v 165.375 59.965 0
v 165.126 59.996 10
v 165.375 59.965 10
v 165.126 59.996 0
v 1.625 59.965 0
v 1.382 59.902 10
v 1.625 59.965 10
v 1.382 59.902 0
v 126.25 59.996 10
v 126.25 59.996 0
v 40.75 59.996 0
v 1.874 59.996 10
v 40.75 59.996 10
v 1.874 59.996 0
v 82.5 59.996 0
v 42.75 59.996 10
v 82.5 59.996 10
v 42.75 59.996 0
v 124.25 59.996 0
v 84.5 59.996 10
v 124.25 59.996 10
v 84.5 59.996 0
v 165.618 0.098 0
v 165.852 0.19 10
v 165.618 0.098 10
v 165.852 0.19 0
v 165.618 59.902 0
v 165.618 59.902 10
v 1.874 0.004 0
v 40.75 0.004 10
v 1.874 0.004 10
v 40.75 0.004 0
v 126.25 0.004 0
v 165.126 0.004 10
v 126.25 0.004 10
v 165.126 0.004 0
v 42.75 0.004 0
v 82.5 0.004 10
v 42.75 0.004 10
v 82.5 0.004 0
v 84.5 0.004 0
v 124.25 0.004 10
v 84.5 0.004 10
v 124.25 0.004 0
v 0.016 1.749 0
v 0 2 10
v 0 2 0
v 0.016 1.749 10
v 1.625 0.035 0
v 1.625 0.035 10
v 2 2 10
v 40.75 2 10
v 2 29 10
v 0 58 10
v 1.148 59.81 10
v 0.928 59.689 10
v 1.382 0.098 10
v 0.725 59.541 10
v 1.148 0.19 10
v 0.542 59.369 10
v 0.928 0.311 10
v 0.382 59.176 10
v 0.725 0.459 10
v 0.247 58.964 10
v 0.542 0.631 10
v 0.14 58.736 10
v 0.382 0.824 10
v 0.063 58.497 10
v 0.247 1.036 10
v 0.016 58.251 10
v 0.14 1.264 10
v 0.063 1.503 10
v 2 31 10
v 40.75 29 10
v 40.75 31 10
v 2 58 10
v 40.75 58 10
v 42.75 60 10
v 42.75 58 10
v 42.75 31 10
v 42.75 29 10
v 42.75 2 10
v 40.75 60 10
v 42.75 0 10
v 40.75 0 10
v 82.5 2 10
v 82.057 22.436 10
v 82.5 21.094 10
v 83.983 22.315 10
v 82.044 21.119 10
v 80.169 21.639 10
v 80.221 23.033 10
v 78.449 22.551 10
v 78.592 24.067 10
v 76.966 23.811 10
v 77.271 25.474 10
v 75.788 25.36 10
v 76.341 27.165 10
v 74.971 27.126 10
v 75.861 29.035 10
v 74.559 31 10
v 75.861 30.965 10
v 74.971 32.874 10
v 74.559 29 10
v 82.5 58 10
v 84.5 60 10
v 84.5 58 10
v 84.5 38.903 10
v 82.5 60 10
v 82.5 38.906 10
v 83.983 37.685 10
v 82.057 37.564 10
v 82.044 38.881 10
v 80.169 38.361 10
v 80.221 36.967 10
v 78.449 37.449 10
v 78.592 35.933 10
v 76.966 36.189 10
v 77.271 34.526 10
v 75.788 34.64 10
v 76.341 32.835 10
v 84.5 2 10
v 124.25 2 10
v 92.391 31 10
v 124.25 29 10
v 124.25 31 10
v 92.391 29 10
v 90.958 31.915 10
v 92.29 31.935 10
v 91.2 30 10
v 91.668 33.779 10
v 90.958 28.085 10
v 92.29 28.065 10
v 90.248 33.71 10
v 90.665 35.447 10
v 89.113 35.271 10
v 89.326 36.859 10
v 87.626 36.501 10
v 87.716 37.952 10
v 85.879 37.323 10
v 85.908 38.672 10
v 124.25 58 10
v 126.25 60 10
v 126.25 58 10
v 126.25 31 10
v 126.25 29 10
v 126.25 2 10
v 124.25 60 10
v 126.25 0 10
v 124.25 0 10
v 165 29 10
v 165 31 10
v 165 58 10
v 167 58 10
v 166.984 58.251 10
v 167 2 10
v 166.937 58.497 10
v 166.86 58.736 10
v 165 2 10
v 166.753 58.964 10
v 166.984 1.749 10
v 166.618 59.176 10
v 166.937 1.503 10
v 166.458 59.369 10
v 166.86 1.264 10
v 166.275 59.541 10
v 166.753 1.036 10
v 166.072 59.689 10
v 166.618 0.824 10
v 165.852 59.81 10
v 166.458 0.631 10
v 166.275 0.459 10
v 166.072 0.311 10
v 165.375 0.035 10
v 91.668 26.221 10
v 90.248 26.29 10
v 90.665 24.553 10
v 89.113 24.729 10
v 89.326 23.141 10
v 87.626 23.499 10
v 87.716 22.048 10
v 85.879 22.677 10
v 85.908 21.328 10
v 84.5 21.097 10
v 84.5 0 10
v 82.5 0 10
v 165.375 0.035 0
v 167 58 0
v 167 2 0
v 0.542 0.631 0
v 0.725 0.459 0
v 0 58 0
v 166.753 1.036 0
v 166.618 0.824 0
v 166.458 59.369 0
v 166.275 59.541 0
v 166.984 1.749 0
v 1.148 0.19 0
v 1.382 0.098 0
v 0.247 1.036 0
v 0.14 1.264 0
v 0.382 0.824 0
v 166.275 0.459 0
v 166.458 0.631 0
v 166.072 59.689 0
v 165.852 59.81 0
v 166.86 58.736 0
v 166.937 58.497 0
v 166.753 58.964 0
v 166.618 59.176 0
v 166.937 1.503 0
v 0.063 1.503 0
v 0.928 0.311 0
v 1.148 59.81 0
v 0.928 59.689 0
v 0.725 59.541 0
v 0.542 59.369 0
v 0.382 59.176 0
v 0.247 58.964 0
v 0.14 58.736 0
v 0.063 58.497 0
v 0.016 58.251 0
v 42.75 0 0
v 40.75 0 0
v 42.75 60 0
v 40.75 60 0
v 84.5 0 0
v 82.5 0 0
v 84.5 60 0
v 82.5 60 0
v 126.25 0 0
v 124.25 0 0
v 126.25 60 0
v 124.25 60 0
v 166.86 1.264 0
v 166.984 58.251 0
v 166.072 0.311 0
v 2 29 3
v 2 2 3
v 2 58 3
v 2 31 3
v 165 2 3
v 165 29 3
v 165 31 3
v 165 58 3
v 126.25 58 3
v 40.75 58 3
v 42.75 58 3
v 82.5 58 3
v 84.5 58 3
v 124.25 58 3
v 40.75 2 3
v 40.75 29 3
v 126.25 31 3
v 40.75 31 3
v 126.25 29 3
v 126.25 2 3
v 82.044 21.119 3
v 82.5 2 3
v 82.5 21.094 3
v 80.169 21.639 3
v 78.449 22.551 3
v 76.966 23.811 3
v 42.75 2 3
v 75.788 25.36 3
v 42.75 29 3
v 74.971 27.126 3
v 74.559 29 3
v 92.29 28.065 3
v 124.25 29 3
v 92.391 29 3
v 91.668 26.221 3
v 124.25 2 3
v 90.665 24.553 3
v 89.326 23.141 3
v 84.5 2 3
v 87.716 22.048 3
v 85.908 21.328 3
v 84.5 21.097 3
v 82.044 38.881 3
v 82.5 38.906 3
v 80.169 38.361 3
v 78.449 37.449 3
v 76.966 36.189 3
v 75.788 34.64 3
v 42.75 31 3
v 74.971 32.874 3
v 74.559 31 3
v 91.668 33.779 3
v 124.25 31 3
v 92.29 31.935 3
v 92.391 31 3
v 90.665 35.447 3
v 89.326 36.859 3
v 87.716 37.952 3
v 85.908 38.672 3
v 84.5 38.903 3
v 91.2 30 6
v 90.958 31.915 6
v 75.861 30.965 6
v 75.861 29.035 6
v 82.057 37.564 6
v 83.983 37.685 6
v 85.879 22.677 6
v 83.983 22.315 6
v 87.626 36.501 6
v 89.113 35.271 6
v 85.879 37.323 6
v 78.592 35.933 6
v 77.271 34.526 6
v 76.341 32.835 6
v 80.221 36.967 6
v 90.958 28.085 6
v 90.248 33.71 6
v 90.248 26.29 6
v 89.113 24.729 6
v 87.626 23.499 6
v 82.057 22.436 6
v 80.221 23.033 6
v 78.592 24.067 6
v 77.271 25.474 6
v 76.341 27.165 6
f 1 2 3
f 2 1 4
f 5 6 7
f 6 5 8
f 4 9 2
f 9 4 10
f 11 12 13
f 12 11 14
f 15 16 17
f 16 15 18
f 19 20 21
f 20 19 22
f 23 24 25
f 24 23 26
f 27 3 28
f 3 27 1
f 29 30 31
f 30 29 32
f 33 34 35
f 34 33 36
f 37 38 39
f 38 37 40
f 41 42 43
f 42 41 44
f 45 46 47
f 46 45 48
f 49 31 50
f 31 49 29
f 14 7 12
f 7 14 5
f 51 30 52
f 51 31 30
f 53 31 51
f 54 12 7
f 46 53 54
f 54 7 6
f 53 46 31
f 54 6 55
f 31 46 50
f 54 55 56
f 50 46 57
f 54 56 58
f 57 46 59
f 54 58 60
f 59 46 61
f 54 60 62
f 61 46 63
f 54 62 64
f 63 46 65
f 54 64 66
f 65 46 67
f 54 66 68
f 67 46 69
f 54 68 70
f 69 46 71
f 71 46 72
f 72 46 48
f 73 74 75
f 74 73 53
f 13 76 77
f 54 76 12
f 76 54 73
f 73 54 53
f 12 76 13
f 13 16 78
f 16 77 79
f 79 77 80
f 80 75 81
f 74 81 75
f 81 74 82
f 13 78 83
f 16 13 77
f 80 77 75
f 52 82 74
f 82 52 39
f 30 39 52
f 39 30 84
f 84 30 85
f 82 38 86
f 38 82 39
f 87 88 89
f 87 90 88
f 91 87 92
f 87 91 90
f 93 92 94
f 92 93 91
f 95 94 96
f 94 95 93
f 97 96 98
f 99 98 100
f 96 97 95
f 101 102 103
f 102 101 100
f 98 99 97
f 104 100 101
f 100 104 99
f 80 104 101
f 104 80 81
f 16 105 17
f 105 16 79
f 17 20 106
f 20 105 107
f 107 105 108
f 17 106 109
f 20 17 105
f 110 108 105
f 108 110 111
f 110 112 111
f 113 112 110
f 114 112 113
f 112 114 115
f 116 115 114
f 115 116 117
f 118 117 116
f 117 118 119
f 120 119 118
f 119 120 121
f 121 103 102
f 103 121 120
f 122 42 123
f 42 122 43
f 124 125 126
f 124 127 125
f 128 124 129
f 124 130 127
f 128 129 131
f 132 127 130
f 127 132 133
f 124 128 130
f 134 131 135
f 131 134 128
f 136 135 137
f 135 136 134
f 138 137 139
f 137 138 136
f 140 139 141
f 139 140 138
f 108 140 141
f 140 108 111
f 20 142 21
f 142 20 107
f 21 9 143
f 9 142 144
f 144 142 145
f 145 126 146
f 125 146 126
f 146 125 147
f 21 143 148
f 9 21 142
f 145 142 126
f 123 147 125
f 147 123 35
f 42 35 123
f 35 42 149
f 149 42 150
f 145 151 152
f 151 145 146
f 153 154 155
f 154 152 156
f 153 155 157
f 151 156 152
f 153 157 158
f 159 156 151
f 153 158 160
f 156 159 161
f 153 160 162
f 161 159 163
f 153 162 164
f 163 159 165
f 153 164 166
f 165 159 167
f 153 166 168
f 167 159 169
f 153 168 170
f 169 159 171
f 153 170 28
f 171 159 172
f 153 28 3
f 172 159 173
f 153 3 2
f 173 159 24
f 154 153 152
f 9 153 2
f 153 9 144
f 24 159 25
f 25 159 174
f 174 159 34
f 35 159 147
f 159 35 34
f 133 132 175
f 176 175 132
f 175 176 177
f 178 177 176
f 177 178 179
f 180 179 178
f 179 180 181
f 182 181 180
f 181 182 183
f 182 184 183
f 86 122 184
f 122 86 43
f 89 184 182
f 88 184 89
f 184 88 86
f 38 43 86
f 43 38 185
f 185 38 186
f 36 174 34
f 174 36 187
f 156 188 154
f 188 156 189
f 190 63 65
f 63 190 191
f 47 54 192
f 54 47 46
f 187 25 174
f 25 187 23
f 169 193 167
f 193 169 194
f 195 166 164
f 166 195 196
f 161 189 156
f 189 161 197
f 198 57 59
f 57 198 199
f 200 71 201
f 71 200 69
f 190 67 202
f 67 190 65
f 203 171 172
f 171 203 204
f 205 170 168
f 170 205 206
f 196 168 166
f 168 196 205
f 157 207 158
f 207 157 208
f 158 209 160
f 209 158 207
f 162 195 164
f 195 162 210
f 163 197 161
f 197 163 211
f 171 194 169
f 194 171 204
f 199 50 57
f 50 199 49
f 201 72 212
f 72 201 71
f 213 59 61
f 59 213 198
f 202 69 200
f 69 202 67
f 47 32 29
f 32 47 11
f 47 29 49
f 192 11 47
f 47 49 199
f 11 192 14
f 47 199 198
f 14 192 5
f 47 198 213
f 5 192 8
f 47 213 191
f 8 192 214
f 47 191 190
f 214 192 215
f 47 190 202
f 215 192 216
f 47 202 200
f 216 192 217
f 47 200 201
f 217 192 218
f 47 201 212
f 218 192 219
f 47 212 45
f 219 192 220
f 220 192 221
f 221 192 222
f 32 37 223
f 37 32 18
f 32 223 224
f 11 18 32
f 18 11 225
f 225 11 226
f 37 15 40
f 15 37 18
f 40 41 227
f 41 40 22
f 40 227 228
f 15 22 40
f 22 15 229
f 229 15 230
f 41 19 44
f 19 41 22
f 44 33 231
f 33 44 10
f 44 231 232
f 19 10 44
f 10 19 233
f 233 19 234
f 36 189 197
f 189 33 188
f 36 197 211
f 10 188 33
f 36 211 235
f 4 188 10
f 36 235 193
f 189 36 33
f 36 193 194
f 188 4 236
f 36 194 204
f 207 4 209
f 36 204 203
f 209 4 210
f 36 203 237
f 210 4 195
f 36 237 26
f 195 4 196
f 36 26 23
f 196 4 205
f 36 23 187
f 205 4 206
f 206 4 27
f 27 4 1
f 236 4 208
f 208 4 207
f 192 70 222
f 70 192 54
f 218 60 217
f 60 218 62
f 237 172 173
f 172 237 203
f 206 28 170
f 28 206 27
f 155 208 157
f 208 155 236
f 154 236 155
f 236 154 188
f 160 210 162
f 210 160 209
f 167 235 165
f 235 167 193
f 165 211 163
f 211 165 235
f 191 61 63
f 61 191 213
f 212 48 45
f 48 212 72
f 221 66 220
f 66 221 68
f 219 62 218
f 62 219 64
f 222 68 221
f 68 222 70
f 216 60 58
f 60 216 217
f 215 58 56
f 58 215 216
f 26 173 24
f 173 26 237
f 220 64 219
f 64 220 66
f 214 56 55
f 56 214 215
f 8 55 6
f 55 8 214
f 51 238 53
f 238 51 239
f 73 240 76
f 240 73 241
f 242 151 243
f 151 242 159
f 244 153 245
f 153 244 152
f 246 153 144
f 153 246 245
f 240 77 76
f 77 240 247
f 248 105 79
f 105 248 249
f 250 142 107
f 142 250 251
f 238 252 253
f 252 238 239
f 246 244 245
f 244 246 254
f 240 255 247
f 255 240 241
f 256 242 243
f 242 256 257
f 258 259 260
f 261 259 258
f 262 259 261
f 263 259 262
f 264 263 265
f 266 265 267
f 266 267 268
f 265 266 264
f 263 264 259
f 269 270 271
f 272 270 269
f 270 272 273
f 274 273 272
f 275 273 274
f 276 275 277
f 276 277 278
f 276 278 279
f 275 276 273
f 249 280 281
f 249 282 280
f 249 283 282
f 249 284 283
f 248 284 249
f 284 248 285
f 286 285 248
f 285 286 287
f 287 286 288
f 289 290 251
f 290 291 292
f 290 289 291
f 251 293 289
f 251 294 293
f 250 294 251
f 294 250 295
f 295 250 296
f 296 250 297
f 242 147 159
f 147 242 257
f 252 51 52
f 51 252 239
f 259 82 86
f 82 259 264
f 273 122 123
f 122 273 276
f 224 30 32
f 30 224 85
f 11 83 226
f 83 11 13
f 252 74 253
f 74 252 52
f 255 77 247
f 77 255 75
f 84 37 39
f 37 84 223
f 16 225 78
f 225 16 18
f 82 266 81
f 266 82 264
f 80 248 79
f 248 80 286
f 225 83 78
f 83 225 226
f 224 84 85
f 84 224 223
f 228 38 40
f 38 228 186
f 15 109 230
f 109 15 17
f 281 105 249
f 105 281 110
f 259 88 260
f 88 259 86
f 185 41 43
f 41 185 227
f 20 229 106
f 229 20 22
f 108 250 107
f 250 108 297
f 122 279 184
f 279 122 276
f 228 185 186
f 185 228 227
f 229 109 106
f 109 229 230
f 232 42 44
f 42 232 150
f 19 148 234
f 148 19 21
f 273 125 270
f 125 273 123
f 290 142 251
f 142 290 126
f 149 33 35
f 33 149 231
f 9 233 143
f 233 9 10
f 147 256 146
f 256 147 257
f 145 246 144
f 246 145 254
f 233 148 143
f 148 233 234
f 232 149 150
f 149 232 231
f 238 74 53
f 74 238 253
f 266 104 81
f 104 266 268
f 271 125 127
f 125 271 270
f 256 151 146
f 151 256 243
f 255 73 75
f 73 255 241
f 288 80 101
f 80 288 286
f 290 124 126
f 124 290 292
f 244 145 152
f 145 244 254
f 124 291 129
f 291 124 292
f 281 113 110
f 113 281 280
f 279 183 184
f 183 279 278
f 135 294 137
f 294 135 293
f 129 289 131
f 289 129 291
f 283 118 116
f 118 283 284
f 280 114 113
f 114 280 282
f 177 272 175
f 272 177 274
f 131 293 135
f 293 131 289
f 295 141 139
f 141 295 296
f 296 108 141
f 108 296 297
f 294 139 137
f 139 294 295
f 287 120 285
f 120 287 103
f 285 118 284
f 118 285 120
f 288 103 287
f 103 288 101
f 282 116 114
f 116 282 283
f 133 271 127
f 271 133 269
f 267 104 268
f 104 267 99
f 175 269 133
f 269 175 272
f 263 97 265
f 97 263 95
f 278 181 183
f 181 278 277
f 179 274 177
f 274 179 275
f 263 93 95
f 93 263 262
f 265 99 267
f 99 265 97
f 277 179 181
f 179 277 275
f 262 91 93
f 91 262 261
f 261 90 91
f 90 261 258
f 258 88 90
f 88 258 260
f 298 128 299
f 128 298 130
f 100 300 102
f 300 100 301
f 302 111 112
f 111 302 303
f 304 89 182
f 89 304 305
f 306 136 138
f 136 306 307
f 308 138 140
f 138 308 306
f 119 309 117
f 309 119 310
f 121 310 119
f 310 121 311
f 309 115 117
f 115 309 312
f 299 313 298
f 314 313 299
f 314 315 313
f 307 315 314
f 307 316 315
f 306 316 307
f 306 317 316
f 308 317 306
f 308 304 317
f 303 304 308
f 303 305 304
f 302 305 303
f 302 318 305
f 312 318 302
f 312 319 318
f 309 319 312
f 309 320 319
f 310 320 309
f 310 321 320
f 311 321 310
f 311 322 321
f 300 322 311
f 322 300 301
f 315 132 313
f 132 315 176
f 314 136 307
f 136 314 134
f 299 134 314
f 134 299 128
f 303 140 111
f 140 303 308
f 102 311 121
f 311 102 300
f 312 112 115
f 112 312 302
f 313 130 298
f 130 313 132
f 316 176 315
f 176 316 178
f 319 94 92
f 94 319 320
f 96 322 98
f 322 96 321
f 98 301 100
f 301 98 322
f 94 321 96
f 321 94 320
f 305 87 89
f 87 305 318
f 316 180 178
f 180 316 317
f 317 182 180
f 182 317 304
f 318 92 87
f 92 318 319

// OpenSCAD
length = 167;
height = 35 - (22 + 3);
wallThickness = 2;
floorThickness = 3;
widthDividers = 1;
lengthDividers = 3;
widthDividerToSkip = -1;
rimThickness = 2;
rimPadding = 1.5;
width = 60;

//Based on magnet size:
magnetBaseOuterDiameter = 18;
magnetBaseInnerDiameter = 15.4;
magnetHeight = 4.0;


difference(){
    union(){
            $fn=50;
            minkowski()
            {
              translate([2,2,0])
                cube([length-4, width-4, height - 1]);
              cylinder(r=2,h=1);
            }
        }
    translate([wallThickness, wallThickness, floorThickness])
        cube([length - wallThickness * 2,width - wallThickness * 2, height - floorThickness]);
}
widthSections = widthDividers + 1;
lengthSections = lengthDividers + 1;
difference() {
    union() {
        if(widthDividers>0)
            for(index=[1:widthDividers])
                if (index != widthDividerToSkip)
                    translate([0, (width/widthSections) * index - (wallThickness/2), 0])
                        cube([length, wallThickness, height]);
//        translate([0, (3*width/5) - (wallThickness/2), 0])
//            cube([length/2, wallThickness, height]);
//        translate([length/2, (2*width/5) - (wallThickness/2), 0])
//            cube([length/2, wallThickness, height]);

        if(lengthDividers>0)
            for(index=[1:lengthDividers])
                translate([ (length/lengthSections) * index - (wallThickness/2), 0, 0])
                    cube([wallThickness, width, height]);
        
        translate([length/2, width/2, 0])
            cylinder(height, d=magnetBaseOuterDiameter);
    };
    translate([length/2, width/2, height - magnetHeight])
        cylinder(magnetHeight, d=magnetBaseInnerDiameter);
};
